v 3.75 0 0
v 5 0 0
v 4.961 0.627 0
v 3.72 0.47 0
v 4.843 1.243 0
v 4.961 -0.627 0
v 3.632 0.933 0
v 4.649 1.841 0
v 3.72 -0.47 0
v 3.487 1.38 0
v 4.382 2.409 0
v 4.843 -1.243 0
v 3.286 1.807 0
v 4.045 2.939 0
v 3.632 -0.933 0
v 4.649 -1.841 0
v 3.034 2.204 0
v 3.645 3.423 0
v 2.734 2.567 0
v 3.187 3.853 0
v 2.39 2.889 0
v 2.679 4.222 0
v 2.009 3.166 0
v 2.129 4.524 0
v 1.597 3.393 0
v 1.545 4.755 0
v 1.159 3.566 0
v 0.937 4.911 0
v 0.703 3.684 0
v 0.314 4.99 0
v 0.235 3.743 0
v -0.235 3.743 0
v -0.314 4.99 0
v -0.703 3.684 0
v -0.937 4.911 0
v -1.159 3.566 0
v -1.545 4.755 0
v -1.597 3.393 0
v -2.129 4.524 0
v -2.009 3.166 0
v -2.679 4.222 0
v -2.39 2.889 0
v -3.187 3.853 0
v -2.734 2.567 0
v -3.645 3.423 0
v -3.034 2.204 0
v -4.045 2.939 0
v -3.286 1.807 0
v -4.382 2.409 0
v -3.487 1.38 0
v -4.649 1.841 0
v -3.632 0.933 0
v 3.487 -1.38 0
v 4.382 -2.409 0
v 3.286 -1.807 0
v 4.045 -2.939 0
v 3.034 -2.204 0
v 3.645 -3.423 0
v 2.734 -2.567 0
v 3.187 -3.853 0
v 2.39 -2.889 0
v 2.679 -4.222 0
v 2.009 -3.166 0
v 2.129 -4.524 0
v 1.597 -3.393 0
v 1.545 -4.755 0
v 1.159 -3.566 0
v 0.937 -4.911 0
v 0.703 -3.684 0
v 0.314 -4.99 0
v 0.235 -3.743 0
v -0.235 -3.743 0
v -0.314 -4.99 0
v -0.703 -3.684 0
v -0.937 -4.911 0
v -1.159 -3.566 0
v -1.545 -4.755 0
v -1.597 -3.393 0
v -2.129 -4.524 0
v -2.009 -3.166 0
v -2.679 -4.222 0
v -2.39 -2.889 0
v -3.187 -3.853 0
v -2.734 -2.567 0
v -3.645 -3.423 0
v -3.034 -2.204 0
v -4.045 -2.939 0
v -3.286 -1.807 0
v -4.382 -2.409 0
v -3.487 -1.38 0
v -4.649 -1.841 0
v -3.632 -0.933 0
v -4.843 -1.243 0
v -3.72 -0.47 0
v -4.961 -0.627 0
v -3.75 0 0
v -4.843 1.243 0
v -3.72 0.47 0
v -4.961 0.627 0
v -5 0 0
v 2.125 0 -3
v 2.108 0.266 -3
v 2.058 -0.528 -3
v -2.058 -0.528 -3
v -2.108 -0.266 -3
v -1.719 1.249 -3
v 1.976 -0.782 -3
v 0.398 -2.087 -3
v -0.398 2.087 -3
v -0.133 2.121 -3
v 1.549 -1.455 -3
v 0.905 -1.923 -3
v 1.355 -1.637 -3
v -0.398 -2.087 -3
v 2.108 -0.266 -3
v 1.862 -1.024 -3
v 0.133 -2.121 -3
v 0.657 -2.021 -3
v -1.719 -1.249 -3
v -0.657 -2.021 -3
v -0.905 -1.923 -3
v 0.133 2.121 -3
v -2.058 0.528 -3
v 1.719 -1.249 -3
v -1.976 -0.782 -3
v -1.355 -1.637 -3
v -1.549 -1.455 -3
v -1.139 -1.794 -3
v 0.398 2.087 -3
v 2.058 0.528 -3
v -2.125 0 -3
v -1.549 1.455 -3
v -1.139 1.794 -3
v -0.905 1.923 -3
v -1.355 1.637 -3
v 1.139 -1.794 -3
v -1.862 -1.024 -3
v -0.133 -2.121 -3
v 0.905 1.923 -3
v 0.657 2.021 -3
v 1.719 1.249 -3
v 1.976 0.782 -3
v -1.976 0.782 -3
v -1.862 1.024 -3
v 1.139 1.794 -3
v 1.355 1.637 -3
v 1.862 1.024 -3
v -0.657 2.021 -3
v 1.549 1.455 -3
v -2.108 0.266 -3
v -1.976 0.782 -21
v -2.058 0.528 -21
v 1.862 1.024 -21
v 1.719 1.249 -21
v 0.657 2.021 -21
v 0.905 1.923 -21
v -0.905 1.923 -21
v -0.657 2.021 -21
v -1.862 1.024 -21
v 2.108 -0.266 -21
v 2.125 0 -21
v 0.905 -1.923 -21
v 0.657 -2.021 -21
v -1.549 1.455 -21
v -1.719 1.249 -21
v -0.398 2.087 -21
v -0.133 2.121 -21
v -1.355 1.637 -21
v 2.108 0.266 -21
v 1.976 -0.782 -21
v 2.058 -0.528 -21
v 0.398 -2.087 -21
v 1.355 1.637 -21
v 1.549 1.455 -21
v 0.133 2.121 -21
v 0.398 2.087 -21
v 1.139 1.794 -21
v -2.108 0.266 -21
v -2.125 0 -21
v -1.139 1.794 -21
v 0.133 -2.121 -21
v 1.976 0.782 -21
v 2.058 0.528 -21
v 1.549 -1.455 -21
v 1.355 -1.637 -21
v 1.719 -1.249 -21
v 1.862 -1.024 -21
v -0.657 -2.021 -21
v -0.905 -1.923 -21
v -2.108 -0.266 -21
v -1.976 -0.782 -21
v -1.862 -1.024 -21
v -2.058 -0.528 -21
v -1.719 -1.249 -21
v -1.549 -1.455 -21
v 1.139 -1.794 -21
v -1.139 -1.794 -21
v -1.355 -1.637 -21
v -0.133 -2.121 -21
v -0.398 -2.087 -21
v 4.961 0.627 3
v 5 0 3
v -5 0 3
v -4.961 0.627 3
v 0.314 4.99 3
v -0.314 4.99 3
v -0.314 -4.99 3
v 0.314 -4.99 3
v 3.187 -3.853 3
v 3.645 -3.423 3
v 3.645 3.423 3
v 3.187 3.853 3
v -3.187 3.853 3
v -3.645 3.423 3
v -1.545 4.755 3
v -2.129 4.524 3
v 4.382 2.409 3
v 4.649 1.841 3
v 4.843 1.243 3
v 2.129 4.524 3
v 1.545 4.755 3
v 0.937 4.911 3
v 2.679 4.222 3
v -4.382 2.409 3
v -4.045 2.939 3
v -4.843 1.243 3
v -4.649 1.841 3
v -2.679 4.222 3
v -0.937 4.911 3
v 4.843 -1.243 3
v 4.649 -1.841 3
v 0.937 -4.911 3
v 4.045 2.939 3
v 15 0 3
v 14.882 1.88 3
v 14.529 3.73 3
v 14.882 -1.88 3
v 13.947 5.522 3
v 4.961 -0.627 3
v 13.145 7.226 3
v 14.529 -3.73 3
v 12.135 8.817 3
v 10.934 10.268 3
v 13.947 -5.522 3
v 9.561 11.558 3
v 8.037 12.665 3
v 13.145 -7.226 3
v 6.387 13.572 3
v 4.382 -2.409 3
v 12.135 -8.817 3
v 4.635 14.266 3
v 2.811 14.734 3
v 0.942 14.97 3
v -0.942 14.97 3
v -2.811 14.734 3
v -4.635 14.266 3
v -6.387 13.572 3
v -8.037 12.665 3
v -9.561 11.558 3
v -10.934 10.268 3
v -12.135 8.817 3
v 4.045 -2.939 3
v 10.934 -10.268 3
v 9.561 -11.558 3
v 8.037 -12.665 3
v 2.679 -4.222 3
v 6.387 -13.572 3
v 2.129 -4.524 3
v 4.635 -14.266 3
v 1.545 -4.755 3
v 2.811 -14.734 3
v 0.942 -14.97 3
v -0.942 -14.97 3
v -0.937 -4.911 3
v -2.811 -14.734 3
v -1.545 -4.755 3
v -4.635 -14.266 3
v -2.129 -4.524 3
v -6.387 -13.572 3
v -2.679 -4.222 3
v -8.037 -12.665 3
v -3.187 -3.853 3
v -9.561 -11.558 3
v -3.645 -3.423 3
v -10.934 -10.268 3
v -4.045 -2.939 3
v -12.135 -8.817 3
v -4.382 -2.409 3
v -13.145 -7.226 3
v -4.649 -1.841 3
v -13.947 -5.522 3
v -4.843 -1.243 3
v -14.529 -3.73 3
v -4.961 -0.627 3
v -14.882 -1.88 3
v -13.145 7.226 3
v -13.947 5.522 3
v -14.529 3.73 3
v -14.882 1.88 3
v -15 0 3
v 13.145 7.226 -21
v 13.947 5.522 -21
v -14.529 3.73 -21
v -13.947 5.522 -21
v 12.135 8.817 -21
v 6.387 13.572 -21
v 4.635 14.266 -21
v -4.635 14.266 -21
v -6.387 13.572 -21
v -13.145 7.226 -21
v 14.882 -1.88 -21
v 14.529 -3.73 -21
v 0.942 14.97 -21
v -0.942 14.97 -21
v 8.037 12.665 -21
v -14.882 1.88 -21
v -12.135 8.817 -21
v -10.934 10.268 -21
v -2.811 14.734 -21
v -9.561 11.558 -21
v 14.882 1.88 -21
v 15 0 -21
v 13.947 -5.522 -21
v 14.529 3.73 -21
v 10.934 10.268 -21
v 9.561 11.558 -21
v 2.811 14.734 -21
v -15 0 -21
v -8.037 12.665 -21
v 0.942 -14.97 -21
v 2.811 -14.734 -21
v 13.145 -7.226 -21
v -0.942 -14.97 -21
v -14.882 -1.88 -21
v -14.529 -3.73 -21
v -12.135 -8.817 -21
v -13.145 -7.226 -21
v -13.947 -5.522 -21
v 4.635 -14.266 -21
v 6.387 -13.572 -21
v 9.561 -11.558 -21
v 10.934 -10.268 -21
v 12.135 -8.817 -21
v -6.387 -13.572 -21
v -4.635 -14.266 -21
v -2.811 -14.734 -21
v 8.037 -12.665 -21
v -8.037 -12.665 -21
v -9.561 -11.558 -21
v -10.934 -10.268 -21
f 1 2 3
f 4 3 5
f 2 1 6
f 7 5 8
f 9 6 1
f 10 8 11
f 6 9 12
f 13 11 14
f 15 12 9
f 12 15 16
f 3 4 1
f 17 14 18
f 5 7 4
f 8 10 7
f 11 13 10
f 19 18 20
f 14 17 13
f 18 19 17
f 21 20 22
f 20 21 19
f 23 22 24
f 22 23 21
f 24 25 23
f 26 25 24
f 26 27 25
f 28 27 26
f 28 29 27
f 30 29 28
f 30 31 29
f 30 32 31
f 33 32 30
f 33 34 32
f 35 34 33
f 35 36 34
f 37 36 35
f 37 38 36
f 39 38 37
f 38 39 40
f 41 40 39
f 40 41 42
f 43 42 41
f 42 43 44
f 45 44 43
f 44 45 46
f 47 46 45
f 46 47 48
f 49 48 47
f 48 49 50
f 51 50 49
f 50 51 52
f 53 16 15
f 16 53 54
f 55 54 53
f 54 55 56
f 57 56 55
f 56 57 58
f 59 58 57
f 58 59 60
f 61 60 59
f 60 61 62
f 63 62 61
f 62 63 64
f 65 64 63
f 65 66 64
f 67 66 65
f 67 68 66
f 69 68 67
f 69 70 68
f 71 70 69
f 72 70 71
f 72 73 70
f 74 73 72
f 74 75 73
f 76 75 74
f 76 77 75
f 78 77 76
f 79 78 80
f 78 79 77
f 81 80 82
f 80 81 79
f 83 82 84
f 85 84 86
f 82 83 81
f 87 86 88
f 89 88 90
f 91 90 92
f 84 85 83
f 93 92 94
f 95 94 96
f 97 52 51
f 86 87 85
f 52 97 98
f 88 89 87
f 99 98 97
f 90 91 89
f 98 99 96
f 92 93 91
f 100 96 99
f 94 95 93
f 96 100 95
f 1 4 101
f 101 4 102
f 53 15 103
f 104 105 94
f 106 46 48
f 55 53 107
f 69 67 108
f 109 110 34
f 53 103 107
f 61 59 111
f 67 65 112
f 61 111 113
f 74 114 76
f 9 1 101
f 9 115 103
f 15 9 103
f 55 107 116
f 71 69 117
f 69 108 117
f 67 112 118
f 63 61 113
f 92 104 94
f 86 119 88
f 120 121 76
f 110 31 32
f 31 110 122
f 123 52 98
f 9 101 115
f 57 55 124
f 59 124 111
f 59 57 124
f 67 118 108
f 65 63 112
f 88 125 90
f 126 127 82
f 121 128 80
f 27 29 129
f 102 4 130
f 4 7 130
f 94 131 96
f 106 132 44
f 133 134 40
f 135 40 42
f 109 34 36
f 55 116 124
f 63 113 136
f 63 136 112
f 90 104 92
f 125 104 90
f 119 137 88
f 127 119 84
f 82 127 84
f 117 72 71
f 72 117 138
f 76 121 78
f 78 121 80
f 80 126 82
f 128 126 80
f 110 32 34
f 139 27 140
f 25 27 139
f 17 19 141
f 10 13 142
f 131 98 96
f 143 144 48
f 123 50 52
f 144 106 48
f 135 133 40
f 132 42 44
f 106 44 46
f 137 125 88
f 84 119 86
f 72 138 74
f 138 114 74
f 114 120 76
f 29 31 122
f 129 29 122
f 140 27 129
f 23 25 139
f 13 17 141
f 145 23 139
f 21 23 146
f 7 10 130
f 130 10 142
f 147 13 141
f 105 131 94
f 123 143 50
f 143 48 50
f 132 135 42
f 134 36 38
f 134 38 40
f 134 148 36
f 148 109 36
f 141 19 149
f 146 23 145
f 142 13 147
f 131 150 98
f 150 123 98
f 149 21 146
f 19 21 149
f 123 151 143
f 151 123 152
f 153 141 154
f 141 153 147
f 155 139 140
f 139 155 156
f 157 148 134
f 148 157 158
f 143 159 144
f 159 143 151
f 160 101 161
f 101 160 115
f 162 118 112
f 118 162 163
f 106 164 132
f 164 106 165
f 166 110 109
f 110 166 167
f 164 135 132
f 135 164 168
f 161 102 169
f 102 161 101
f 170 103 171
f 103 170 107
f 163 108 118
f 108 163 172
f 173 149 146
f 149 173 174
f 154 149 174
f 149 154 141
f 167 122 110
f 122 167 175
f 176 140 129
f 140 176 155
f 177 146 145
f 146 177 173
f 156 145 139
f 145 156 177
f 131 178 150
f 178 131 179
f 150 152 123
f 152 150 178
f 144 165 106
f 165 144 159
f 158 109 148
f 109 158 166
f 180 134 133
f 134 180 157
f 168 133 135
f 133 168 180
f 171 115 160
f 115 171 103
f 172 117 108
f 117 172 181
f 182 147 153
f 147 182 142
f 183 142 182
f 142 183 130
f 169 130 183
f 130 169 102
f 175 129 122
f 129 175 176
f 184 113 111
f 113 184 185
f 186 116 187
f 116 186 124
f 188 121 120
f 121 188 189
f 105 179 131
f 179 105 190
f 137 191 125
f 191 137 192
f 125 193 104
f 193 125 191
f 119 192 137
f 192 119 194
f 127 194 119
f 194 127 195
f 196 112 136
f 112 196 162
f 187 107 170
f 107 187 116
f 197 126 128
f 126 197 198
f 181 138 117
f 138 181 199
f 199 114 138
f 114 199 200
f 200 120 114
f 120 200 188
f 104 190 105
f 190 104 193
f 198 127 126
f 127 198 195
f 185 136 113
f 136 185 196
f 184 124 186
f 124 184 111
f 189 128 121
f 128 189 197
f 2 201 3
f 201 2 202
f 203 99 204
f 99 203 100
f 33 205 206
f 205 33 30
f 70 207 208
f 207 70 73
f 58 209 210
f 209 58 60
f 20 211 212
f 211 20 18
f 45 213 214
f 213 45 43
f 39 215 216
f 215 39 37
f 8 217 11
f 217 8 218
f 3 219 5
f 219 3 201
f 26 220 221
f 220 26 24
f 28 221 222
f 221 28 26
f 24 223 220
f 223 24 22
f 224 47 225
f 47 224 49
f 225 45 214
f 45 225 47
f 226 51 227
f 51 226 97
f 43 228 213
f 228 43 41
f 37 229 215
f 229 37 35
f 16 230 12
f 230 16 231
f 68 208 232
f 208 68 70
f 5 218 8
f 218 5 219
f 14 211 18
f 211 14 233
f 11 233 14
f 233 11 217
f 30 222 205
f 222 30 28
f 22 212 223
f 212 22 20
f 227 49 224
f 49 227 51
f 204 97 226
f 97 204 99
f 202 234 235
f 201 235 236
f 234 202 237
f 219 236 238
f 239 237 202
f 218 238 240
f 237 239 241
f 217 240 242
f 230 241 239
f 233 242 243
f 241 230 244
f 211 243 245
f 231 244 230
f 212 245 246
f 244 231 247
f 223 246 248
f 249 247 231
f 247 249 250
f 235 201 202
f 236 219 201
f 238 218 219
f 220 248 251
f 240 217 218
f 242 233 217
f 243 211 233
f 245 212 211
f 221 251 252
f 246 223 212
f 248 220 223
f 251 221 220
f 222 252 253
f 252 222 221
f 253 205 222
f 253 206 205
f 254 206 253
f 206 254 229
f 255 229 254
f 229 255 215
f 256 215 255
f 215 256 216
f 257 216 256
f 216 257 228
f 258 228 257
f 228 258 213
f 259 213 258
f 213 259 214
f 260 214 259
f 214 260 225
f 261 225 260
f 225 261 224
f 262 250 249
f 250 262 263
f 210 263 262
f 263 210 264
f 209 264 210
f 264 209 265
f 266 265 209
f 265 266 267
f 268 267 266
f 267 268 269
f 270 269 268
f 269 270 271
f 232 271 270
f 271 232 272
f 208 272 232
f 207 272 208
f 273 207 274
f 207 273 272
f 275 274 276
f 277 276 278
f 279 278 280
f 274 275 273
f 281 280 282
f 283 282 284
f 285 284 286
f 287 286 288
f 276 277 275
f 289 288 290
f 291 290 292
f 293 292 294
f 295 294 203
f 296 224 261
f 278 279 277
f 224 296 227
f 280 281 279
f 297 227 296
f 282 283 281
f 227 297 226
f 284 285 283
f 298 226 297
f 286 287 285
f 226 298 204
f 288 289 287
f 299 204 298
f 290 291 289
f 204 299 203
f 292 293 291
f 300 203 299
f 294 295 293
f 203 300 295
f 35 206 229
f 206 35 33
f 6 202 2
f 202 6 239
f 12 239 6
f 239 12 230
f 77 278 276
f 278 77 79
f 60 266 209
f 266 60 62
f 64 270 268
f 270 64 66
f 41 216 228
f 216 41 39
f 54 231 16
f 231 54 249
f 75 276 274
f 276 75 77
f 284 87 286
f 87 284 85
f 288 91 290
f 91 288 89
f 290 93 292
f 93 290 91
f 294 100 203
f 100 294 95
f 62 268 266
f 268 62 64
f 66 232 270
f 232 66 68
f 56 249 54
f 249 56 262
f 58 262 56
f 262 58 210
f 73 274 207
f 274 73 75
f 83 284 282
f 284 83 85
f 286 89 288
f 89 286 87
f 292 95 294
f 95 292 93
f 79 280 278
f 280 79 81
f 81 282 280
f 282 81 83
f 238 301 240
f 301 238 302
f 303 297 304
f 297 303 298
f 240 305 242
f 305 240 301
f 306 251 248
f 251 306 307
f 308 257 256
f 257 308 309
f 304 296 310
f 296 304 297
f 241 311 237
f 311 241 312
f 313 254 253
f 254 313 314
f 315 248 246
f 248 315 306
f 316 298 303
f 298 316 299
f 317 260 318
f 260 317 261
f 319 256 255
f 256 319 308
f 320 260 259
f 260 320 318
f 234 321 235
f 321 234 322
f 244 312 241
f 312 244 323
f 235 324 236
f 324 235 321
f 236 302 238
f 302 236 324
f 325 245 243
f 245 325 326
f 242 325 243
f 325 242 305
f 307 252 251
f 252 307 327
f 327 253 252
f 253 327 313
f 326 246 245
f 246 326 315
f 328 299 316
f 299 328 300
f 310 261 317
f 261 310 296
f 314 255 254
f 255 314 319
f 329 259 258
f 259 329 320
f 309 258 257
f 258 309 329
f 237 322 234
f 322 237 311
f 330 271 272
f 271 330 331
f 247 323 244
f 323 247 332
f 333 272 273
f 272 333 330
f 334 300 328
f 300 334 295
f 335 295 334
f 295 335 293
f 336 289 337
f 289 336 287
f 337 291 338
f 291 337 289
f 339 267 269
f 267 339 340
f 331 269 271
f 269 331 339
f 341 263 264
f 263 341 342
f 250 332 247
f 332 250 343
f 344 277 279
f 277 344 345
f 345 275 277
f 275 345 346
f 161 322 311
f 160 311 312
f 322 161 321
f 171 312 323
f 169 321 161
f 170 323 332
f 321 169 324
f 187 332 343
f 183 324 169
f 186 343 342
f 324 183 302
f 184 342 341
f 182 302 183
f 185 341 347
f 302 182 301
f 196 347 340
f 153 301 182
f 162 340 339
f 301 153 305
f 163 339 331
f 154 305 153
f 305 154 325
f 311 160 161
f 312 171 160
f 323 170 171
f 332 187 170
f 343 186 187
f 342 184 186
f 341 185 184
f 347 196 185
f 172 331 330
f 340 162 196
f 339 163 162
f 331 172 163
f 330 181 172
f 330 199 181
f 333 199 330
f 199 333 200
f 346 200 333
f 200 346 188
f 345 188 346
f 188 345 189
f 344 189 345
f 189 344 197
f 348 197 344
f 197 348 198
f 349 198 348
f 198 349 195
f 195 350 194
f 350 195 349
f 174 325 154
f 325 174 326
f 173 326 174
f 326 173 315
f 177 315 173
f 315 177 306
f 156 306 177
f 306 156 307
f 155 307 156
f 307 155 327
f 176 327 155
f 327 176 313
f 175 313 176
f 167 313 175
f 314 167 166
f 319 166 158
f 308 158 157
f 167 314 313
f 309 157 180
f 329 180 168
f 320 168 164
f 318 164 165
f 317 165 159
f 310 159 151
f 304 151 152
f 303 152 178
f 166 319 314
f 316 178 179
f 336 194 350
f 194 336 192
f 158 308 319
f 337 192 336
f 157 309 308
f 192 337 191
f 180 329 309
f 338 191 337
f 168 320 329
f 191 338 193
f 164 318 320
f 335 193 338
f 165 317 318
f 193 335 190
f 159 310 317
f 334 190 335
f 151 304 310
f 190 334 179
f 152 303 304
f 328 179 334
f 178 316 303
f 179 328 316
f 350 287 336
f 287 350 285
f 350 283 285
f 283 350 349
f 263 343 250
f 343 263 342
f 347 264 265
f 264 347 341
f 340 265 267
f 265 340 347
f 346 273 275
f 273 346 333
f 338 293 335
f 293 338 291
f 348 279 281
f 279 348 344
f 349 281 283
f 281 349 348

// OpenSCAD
$fn = 50;


difference() {
	union() {
		translate(v = [0, 0, -21.0000000000]) {
			cylinder(h = 24, r = 15.0000000000);
		}
	}
	union() {
		translate(v = [0, 0, 0]) {
			rotate(a = [0, 0, 0]) {
				difference() {
					union() {
						translate(v = [0, 0, -24.0000000000]) {
							cylinder(h = 24, r = 2.0000000000);
						}
						translate(v = [0, 0, -3]) {
							cylinder(h = 3, r1 = 2.1250000000, r2 = 3.7500000000);
						}
						translate(v = [0, 0, -24.0000000000]) {
							cylinder(h = 24, r = 2.1250000000);
						}
						translate(v = [0, 0, -24.0000000000]) {
							cylinder(h = 24, r = 2.0000000000);
						}
					}
					union();
				}
			}
		}
		#cylinder(h = 3, r = 5.0000000000);
	}
}
